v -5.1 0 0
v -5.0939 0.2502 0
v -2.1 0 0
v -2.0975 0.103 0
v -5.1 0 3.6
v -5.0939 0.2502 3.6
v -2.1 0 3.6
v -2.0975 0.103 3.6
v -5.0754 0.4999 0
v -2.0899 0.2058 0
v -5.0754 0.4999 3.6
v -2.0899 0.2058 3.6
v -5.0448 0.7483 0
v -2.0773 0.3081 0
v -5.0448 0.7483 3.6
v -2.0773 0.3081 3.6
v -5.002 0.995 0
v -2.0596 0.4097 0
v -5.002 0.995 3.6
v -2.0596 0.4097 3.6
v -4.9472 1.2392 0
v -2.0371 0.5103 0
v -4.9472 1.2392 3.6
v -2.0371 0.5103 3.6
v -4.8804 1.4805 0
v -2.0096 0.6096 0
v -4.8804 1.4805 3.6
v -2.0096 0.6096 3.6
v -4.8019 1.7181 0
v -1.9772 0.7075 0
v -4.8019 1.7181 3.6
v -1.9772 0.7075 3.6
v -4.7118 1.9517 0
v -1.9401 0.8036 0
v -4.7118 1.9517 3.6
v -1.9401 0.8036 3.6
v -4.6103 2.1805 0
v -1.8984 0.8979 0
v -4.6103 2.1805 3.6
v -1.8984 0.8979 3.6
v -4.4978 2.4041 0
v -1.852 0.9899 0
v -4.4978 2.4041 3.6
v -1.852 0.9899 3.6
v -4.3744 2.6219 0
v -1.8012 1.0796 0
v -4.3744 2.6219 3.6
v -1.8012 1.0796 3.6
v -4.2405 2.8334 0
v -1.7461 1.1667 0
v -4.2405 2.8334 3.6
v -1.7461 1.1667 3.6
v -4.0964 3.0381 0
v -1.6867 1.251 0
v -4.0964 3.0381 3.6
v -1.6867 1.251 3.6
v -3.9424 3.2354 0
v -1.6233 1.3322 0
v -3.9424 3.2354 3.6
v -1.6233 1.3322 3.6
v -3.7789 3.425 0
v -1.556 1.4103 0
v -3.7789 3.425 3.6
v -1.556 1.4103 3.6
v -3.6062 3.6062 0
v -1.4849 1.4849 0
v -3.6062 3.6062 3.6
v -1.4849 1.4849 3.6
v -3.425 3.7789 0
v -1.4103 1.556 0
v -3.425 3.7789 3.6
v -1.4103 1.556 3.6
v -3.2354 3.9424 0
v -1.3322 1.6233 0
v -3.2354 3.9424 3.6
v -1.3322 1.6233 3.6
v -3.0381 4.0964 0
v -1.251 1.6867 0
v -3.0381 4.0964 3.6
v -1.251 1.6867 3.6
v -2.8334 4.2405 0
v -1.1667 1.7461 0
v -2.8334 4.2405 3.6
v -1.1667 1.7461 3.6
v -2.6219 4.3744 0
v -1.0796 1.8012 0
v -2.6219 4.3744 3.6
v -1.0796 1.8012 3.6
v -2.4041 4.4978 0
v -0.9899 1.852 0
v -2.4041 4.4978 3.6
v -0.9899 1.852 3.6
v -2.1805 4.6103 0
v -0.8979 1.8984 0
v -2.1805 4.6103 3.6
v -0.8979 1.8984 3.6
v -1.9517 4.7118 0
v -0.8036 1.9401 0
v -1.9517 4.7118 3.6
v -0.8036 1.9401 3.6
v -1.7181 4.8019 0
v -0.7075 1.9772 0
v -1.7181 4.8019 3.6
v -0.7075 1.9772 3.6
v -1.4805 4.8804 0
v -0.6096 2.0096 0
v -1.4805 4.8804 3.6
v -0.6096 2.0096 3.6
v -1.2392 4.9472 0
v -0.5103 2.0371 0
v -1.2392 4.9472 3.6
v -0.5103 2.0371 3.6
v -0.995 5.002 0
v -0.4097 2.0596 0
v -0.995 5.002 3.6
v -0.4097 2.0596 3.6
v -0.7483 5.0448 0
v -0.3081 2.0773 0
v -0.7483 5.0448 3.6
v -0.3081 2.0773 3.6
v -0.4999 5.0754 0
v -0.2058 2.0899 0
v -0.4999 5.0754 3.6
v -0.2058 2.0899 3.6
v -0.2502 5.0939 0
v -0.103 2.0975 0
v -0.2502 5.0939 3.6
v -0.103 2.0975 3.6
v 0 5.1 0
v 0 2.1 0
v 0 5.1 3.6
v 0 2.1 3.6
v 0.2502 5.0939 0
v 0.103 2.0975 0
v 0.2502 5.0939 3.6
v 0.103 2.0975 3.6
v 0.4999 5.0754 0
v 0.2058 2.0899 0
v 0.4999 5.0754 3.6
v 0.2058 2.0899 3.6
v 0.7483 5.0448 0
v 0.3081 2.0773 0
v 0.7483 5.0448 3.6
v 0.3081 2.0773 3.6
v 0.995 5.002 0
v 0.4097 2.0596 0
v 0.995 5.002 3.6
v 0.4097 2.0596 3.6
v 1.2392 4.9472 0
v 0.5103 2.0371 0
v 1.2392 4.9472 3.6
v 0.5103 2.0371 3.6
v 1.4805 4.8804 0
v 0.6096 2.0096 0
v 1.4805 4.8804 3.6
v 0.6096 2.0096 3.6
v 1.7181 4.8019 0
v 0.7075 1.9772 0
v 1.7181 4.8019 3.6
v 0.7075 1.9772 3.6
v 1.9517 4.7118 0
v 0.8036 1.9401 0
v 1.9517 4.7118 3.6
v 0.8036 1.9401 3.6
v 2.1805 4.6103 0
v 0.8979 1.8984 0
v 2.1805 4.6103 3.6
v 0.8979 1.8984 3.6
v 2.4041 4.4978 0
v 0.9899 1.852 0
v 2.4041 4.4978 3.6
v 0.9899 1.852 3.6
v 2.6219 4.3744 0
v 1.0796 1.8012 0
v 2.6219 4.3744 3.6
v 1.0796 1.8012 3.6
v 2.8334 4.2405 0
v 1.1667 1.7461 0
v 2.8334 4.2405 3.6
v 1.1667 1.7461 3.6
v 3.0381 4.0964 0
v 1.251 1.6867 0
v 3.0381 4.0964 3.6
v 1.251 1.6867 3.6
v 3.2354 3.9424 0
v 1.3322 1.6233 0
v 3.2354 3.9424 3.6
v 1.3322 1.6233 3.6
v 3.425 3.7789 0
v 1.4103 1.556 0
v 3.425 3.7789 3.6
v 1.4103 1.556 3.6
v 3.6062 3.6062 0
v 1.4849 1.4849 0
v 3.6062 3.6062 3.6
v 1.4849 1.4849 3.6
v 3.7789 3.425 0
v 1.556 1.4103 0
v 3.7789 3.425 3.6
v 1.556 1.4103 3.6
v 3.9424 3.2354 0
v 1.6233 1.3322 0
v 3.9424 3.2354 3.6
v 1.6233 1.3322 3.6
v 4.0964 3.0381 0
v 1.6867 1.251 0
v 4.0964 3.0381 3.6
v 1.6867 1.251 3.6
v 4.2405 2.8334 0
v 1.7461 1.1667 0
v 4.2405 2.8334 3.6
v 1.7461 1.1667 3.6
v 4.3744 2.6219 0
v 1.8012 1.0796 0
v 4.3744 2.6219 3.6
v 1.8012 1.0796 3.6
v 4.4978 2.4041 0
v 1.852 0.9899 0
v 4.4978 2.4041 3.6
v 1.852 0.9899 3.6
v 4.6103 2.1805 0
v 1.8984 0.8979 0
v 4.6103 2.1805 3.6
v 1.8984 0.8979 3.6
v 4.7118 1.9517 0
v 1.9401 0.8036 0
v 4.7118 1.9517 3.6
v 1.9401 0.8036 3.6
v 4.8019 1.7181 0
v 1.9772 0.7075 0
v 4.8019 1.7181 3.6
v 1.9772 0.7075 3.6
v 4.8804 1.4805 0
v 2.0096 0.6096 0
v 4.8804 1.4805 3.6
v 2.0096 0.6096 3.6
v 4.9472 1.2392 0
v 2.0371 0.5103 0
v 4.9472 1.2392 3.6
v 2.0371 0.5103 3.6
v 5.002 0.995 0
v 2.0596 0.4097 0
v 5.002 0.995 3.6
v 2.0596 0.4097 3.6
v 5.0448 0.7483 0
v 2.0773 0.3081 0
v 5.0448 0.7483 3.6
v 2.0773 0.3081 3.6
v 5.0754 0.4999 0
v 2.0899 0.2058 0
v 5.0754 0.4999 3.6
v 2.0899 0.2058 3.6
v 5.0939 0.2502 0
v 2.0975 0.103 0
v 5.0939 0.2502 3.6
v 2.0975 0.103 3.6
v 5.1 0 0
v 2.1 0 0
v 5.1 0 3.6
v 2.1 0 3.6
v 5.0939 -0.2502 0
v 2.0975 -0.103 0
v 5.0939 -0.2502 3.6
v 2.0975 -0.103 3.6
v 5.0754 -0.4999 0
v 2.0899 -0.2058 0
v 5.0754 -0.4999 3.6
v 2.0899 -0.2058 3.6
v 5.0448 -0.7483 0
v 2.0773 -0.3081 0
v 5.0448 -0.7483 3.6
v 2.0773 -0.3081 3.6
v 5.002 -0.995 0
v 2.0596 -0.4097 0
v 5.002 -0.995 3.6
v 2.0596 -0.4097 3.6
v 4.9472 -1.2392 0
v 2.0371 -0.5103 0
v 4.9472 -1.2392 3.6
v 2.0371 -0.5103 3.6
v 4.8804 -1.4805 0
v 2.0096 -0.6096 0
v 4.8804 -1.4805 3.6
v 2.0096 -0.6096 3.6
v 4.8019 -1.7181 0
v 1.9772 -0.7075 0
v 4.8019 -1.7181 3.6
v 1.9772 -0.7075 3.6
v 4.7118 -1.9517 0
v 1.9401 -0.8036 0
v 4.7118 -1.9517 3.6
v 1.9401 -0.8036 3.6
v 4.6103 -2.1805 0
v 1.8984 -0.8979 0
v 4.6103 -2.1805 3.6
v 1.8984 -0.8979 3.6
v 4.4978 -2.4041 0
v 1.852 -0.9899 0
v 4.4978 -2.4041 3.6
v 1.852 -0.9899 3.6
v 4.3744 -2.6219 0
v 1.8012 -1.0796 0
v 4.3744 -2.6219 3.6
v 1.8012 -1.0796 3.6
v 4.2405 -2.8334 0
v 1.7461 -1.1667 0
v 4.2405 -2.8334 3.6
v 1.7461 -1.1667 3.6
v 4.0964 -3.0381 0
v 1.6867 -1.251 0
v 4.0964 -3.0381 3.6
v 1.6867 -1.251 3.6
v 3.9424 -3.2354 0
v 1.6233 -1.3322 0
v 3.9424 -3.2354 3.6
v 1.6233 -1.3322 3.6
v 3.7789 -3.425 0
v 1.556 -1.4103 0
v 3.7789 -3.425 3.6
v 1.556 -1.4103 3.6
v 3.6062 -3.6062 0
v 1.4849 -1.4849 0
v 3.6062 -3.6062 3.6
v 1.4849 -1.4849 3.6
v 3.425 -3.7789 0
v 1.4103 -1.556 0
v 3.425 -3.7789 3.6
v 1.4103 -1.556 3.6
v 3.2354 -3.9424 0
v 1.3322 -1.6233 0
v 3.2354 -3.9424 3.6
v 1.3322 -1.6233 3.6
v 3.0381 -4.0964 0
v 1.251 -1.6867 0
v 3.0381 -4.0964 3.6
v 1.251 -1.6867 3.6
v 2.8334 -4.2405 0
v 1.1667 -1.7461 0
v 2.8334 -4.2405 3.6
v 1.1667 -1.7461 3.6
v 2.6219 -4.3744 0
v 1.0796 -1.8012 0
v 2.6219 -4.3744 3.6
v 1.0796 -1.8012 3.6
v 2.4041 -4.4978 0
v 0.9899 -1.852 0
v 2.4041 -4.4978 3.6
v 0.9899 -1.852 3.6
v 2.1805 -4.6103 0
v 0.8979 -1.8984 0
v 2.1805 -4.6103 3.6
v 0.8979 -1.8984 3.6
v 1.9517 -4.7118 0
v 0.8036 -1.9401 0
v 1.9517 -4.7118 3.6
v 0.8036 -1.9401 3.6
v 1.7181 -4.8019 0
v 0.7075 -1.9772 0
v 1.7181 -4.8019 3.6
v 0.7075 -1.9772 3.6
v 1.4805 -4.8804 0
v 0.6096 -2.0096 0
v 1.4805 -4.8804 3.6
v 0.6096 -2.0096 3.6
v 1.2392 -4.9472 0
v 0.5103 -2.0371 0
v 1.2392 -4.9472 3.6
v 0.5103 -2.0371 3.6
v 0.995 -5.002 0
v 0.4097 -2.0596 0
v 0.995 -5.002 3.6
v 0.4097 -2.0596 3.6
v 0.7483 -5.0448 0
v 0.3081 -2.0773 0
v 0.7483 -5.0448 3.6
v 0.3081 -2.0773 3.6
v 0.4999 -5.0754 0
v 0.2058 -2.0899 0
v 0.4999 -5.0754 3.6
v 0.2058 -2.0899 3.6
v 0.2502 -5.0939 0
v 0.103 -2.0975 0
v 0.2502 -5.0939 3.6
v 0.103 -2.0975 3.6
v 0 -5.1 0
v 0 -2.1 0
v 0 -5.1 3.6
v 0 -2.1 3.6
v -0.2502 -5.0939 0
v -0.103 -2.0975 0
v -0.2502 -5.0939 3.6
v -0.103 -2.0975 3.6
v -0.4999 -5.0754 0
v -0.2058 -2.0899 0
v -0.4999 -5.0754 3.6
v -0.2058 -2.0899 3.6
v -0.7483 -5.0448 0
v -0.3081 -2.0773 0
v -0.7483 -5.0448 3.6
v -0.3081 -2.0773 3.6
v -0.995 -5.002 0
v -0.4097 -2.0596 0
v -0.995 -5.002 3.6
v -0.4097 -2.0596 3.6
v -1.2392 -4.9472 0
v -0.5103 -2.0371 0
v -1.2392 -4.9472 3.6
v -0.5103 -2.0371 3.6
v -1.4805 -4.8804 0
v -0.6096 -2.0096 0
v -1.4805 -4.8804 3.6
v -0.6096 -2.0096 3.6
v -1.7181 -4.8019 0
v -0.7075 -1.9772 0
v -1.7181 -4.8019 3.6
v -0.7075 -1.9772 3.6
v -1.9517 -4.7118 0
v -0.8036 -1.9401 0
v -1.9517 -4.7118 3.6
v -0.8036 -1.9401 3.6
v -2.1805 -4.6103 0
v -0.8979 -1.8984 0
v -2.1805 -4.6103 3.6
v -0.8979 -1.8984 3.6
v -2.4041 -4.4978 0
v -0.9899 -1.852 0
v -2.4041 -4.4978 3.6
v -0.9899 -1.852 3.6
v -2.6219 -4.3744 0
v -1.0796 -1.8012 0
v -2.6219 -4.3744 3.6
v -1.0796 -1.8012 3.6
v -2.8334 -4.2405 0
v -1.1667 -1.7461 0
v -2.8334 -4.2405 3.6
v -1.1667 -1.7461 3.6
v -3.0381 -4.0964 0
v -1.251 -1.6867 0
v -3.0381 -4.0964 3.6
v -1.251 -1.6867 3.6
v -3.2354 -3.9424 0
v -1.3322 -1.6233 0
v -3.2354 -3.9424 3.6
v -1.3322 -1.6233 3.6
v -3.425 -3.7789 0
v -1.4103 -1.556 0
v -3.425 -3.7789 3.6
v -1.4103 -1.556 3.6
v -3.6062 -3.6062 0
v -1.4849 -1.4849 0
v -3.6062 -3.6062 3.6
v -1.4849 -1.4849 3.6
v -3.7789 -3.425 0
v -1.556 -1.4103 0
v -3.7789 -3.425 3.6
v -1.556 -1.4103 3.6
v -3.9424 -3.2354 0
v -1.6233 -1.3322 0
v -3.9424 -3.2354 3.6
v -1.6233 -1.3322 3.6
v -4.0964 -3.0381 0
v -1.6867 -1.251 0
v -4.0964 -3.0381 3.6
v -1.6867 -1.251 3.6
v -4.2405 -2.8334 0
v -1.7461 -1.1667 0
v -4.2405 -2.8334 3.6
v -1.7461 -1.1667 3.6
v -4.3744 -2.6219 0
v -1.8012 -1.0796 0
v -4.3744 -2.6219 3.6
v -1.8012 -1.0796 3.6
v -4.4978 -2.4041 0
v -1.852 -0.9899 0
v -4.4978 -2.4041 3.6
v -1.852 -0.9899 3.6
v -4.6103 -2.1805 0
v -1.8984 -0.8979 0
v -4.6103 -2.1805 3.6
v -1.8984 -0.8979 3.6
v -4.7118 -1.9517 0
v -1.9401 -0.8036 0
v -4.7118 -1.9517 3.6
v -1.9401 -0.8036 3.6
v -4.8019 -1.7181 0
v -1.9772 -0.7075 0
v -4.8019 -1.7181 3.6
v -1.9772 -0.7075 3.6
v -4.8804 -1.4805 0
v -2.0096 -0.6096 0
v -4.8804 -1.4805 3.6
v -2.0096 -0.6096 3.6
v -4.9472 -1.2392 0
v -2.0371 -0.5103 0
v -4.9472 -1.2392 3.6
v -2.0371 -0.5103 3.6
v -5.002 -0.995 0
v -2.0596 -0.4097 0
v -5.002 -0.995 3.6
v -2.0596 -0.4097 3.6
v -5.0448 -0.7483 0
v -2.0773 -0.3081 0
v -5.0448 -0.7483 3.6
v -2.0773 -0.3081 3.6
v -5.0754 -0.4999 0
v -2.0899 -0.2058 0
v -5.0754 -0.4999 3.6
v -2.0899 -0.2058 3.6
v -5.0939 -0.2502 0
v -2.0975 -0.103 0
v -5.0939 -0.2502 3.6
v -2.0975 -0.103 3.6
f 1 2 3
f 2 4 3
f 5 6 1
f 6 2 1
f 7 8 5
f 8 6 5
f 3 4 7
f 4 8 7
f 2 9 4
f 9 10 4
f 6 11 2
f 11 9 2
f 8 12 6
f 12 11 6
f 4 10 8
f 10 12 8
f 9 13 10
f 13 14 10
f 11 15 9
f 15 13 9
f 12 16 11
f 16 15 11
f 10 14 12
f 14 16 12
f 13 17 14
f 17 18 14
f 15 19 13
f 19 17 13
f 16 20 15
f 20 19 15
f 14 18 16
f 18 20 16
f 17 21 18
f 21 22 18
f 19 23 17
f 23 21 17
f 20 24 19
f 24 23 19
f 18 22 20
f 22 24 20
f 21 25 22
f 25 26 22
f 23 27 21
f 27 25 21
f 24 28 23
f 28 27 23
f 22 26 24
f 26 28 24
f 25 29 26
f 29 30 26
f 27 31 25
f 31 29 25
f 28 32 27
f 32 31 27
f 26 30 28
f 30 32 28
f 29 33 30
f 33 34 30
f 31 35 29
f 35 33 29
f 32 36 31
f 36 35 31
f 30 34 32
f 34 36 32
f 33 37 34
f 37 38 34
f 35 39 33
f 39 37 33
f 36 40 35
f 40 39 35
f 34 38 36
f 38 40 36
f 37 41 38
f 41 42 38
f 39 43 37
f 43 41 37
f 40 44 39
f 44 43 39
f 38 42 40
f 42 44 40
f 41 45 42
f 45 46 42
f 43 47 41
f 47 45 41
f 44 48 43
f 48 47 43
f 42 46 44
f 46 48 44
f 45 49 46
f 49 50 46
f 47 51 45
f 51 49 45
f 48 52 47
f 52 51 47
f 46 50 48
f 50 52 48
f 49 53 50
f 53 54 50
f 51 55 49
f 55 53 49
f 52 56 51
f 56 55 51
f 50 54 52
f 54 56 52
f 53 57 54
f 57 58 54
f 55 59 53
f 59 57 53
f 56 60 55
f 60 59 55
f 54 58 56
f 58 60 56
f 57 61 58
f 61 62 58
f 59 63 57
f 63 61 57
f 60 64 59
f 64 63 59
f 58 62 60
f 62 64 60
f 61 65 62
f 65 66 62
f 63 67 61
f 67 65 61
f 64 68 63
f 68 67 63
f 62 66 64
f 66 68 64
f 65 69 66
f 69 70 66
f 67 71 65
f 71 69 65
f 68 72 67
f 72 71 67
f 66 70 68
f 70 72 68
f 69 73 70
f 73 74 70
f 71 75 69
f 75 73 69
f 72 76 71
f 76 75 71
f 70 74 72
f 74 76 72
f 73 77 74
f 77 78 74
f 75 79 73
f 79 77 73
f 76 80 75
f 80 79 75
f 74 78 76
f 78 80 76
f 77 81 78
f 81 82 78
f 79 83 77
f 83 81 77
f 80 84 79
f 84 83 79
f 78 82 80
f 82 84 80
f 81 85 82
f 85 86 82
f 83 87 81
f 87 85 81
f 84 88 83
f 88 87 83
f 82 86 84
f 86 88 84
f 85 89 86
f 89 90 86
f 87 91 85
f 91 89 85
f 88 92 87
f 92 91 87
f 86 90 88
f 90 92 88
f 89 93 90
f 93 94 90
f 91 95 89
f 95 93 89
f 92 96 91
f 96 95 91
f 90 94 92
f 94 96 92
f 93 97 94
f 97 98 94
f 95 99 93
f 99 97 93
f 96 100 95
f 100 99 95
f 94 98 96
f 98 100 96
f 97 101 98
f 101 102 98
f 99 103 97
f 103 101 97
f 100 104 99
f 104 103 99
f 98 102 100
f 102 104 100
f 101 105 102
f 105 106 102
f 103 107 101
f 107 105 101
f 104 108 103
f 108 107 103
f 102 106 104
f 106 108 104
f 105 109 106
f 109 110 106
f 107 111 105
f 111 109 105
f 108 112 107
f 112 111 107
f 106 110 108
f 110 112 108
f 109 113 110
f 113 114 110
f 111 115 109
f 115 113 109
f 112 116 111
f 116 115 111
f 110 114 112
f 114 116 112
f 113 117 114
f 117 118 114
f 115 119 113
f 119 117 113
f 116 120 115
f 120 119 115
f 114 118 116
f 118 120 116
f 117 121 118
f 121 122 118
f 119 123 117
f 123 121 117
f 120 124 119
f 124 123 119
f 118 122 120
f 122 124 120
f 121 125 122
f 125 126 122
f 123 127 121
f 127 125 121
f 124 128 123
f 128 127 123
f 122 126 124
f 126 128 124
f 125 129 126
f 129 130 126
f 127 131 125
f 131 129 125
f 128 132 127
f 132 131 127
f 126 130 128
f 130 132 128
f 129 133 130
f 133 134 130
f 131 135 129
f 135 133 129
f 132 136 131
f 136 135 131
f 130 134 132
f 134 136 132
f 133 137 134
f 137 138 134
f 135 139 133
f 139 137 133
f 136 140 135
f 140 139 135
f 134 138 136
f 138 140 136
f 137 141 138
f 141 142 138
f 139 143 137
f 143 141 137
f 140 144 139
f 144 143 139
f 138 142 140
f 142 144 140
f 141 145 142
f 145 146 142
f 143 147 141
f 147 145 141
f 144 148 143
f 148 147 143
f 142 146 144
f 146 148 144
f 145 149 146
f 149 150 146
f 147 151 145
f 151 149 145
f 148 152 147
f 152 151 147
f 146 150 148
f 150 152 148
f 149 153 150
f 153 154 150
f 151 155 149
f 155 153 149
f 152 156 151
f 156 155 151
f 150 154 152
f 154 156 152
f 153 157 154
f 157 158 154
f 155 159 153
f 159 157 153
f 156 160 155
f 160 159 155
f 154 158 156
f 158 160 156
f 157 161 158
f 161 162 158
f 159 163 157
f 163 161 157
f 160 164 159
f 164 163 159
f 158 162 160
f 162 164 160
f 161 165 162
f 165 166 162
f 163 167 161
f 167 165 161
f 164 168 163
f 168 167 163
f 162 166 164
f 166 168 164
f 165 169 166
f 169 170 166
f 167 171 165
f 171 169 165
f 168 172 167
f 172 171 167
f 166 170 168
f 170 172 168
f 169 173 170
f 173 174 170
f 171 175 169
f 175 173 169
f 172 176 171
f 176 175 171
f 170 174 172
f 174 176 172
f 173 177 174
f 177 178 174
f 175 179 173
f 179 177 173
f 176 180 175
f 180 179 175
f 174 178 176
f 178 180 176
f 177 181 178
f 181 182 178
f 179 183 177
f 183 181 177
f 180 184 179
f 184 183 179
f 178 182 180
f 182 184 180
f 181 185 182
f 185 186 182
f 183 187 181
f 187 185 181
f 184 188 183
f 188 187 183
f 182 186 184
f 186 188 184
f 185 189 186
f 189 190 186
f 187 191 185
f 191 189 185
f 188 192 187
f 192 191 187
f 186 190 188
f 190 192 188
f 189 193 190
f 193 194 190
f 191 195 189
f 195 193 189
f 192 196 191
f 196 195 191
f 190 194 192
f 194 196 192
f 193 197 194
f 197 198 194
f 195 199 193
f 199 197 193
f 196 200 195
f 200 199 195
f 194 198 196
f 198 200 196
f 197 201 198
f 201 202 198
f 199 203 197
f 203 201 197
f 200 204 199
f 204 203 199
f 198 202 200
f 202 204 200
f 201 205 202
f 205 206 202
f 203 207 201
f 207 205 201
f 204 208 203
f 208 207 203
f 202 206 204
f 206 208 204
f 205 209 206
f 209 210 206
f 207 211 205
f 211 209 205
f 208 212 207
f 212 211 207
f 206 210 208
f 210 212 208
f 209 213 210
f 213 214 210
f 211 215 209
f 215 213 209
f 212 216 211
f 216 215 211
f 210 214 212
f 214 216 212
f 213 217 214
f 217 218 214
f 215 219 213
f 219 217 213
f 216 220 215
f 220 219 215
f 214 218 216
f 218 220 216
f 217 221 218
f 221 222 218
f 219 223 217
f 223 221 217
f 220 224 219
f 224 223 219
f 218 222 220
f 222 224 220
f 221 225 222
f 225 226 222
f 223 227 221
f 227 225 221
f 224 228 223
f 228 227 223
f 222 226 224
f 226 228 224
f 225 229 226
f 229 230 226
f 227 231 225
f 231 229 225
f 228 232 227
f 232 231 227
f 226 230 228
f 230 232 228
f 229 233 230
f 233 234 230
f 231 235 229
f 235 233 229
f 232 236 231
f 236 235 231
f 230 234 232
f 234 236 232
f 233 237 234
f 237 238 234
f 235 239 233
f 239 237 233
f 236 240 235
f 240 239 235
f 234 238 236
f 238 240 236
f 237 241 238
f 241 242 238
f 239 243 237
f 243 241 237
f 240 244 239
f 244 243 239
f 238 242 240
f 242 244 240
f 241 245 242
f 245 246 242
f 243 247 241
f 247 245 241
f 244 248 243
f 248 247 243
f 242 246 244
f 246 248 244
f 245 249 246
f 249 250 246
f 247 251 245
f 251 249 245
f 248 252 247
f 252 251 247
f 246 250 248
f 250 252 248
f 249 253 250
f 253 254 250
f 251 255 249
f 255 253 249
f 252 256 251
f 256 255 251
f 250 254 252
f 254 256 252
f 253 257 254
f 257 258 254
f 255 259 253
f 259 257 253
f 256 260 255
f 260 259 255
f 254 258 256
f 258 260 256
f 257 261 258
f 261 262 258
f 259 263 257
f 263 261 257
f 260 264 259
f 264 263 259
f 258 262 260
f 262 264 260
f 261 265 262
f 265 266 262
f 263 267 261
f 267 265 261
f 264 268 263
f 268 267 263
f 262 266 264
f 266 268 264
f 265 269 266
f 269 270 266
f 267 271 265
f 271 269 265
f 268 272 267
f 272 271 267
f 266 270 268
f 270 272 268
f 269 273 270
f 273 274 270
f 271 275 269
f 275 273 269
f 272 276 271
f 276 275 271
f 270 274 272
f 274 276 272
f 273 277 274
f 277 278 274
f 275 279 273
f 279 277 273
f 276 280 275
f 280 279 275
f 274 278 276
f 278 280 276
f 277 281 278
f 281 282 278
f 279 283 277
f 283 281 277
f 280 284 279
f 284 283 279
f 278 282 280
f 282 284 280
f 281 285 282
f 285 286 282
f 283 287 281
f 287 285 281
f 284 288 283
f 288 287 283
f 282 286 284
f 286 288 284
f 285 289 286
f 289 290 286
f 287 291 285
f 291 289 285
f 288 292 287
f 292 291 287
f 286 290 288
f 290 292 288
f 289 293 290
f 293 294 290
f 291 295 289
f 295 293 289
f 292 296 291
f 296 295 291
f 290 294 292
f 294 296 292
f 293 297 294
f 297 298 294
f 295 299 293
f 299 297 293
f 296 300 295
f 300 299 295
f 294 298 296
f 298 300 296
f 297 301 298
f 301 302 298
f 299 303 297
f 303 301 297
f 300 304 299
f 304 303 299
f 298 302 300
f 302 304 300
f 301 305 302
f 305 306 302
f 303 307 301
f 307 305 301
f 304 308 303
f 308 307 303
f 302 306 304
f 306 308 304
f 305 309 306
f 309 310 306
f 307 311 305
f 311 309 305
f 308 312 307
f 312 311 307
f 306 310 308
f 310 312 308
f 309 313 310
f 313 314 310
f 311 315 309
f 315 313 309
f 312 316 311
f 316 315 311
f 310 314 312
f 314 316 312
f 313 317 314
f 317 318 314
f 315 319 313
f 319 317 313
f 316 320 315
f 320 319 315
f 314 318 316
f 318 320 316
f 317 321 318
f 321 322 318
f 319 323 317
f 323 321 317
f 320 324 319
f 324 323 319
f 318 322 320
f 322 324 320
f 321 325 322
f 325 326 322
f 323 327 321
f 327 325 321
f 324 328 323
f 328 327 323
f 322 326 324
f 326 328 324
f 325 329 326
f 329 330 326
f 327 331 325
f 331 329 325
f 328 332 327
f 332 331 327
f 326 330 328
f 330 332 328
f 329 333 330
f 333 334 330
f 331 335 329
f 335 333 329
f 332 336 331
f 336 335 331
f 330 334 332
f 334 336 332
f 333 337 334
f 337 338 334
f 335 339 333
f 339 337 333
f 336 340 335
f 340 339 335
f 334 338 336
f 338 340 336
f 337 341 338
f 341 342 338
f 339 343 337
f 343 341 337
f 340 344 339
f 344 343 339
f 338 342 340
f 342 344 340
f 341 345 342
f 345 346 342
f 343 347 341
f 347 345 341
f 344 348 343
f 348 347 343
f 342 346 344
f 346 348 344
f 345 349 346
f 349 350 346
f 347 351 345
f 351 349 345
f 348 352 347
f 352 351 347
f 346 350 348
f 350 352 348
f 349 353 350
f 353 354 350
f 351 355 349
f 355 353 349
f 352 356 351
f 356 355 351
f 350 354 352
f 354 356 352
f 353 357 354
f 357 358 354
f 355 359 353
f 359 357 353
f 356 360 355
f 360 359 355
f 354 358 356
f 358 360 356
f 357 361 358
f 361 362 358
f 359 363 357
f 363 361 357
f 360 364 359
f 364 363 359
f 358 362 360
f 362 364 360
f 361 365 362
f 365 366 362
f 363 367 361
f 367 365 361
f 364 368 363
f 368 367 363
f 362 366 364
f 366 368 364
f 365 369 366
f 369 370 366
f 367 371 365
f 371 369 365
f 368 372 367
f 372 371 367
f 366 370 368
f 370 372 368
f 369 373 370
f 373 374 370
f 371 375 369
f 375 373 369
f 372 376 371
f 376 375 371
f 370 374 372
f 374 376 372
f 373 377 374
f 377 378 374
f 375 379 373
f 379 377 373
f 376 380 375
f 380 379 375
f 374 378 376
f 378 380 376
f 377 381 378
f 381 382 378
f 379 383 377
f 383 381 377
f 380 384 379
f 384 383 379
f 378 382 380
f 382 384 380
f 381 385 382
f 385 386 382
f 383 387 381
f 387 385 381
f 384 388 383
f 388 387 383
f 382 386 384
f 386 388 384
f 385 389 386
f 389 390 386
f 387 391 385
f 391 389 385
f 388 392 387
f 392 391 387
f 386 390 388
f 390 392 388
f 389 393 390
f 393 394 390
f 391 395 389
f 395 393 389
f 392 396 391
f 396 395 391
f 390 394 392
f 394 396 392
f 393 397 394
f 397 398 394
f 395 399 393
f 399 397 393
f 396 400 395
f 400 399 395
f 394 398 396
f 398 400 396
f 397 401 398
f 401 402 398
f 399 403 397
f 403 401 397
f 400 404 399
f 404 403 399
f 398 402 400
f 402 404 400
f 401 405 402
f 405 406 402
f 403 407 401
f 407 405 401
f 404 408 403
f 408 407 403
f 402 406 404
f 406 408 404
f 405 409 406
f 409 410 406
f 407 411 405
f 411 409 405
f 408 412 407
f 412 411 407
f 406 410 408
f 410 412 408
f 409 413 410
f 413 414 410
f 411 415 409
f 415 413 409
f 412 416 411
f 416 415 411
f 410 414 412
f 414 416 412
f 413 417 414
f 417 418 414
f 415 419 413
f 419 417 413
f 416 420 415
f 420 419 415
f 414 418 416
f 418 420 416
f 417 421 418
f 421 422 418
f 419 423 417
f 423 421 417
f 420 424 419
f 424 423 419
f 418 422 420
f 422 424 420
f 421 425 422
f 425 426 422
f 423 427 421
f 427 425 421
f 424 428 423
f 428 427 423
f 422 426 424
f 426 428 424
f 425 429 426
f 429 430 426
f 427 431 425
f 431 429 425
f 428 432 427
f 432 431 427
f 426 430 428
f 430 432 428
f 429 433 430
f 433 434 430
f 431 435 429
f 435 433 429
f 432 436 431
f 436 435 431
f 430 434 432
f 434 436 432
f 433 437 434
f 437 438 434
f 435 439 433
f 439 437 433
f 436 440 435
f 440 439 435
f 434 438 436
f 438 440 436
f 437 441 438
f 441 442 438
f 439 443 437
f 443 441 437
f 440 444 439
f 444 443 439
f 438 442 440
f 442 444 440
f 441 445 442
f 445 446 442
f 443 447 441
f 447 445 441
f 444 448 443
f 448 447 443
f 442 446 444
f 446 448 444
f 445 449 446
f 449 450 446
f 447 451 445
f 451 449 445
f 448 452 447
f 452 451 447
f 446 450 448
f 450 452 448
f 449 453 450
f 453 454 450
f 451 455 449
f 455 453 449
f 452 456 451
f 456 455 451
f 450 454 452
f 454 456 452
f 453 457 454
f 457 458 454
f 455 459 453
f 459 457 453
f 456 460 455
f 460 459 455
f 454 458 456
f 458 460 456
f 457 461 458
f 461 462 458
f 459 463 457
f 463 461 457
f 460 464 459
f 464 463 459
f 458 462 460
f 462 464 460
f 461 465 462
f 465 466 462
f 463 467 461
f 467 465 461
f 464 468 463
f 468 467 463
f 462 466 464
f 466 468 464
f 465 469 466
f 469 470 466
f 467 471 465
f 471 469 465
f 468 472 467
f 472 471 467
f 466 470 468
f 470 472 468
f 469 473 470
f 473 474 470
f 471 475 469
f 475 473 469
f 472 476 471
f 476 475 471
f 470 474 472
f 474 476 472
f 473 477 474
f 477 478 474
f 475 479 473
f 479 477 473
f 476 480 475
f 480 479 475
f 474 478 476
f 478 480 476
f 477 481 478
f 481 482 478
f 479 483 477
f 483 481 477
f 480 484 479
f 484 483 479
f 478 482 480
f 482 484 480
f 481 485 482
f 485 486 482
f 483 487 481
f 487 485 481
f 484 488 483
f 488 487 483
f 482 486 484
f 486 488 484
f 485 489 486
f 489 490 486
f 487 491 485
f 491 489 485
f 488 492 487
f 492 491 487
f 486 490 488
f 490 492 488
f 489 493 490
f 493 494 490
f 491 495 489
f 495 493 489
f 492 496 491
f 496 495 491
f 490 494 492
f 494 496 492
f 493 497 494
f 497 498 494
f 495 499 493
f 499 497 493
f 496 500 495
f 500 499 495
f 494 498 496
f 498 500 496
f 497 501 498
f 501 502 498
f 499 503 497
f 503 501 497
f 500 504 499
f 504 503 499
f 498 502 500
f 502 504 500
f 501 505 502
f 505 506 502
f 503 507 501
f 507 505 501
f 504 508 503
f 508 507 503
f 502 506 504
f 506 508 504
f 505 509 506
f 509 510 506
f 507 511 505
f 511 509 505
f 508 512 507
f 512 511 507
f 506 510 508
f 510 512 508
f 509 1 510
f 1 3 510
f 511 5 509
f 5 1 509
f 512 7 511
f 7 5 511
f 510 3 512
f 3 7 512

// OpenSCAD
// file: common.scad
// Model by Isaac Foraker
//
// Released under Creative Commons Attribution 4.0 International (CC BY 4.0)
// https://creativecommons.org/licenses/by/4.0/

$fn = 128;

// Wheel info
wheel_width = 4;
wheel_rad = 5;
wheel_hole_rad = 2;

// Track info
track_wall_thickness = 2;
track_wall_height = 5;
track_width = wheel_width + 0.5; // Need enough room for the wheel to fit in the arc of the circle
track_rad = 70;

// Simple ring creator.  `rad` is the inside radius of the ring.
module ring(rad, thickness, height) {
    rotate_extrude(convexity=10) translate([rad,0,0]) square([thickness,height]);
}
// main file
// Model by Isaac Foraker
//
// Released under Creative Commons Attribution 4.0 International (CC BY 4.0)
// https://creativecommons.org/licenses/by/4.0/

include <common.scad>

ring(wheel_hole_rad+0.1, wheel_rad-wheel_hole_rad, wheel_width-0.4);
